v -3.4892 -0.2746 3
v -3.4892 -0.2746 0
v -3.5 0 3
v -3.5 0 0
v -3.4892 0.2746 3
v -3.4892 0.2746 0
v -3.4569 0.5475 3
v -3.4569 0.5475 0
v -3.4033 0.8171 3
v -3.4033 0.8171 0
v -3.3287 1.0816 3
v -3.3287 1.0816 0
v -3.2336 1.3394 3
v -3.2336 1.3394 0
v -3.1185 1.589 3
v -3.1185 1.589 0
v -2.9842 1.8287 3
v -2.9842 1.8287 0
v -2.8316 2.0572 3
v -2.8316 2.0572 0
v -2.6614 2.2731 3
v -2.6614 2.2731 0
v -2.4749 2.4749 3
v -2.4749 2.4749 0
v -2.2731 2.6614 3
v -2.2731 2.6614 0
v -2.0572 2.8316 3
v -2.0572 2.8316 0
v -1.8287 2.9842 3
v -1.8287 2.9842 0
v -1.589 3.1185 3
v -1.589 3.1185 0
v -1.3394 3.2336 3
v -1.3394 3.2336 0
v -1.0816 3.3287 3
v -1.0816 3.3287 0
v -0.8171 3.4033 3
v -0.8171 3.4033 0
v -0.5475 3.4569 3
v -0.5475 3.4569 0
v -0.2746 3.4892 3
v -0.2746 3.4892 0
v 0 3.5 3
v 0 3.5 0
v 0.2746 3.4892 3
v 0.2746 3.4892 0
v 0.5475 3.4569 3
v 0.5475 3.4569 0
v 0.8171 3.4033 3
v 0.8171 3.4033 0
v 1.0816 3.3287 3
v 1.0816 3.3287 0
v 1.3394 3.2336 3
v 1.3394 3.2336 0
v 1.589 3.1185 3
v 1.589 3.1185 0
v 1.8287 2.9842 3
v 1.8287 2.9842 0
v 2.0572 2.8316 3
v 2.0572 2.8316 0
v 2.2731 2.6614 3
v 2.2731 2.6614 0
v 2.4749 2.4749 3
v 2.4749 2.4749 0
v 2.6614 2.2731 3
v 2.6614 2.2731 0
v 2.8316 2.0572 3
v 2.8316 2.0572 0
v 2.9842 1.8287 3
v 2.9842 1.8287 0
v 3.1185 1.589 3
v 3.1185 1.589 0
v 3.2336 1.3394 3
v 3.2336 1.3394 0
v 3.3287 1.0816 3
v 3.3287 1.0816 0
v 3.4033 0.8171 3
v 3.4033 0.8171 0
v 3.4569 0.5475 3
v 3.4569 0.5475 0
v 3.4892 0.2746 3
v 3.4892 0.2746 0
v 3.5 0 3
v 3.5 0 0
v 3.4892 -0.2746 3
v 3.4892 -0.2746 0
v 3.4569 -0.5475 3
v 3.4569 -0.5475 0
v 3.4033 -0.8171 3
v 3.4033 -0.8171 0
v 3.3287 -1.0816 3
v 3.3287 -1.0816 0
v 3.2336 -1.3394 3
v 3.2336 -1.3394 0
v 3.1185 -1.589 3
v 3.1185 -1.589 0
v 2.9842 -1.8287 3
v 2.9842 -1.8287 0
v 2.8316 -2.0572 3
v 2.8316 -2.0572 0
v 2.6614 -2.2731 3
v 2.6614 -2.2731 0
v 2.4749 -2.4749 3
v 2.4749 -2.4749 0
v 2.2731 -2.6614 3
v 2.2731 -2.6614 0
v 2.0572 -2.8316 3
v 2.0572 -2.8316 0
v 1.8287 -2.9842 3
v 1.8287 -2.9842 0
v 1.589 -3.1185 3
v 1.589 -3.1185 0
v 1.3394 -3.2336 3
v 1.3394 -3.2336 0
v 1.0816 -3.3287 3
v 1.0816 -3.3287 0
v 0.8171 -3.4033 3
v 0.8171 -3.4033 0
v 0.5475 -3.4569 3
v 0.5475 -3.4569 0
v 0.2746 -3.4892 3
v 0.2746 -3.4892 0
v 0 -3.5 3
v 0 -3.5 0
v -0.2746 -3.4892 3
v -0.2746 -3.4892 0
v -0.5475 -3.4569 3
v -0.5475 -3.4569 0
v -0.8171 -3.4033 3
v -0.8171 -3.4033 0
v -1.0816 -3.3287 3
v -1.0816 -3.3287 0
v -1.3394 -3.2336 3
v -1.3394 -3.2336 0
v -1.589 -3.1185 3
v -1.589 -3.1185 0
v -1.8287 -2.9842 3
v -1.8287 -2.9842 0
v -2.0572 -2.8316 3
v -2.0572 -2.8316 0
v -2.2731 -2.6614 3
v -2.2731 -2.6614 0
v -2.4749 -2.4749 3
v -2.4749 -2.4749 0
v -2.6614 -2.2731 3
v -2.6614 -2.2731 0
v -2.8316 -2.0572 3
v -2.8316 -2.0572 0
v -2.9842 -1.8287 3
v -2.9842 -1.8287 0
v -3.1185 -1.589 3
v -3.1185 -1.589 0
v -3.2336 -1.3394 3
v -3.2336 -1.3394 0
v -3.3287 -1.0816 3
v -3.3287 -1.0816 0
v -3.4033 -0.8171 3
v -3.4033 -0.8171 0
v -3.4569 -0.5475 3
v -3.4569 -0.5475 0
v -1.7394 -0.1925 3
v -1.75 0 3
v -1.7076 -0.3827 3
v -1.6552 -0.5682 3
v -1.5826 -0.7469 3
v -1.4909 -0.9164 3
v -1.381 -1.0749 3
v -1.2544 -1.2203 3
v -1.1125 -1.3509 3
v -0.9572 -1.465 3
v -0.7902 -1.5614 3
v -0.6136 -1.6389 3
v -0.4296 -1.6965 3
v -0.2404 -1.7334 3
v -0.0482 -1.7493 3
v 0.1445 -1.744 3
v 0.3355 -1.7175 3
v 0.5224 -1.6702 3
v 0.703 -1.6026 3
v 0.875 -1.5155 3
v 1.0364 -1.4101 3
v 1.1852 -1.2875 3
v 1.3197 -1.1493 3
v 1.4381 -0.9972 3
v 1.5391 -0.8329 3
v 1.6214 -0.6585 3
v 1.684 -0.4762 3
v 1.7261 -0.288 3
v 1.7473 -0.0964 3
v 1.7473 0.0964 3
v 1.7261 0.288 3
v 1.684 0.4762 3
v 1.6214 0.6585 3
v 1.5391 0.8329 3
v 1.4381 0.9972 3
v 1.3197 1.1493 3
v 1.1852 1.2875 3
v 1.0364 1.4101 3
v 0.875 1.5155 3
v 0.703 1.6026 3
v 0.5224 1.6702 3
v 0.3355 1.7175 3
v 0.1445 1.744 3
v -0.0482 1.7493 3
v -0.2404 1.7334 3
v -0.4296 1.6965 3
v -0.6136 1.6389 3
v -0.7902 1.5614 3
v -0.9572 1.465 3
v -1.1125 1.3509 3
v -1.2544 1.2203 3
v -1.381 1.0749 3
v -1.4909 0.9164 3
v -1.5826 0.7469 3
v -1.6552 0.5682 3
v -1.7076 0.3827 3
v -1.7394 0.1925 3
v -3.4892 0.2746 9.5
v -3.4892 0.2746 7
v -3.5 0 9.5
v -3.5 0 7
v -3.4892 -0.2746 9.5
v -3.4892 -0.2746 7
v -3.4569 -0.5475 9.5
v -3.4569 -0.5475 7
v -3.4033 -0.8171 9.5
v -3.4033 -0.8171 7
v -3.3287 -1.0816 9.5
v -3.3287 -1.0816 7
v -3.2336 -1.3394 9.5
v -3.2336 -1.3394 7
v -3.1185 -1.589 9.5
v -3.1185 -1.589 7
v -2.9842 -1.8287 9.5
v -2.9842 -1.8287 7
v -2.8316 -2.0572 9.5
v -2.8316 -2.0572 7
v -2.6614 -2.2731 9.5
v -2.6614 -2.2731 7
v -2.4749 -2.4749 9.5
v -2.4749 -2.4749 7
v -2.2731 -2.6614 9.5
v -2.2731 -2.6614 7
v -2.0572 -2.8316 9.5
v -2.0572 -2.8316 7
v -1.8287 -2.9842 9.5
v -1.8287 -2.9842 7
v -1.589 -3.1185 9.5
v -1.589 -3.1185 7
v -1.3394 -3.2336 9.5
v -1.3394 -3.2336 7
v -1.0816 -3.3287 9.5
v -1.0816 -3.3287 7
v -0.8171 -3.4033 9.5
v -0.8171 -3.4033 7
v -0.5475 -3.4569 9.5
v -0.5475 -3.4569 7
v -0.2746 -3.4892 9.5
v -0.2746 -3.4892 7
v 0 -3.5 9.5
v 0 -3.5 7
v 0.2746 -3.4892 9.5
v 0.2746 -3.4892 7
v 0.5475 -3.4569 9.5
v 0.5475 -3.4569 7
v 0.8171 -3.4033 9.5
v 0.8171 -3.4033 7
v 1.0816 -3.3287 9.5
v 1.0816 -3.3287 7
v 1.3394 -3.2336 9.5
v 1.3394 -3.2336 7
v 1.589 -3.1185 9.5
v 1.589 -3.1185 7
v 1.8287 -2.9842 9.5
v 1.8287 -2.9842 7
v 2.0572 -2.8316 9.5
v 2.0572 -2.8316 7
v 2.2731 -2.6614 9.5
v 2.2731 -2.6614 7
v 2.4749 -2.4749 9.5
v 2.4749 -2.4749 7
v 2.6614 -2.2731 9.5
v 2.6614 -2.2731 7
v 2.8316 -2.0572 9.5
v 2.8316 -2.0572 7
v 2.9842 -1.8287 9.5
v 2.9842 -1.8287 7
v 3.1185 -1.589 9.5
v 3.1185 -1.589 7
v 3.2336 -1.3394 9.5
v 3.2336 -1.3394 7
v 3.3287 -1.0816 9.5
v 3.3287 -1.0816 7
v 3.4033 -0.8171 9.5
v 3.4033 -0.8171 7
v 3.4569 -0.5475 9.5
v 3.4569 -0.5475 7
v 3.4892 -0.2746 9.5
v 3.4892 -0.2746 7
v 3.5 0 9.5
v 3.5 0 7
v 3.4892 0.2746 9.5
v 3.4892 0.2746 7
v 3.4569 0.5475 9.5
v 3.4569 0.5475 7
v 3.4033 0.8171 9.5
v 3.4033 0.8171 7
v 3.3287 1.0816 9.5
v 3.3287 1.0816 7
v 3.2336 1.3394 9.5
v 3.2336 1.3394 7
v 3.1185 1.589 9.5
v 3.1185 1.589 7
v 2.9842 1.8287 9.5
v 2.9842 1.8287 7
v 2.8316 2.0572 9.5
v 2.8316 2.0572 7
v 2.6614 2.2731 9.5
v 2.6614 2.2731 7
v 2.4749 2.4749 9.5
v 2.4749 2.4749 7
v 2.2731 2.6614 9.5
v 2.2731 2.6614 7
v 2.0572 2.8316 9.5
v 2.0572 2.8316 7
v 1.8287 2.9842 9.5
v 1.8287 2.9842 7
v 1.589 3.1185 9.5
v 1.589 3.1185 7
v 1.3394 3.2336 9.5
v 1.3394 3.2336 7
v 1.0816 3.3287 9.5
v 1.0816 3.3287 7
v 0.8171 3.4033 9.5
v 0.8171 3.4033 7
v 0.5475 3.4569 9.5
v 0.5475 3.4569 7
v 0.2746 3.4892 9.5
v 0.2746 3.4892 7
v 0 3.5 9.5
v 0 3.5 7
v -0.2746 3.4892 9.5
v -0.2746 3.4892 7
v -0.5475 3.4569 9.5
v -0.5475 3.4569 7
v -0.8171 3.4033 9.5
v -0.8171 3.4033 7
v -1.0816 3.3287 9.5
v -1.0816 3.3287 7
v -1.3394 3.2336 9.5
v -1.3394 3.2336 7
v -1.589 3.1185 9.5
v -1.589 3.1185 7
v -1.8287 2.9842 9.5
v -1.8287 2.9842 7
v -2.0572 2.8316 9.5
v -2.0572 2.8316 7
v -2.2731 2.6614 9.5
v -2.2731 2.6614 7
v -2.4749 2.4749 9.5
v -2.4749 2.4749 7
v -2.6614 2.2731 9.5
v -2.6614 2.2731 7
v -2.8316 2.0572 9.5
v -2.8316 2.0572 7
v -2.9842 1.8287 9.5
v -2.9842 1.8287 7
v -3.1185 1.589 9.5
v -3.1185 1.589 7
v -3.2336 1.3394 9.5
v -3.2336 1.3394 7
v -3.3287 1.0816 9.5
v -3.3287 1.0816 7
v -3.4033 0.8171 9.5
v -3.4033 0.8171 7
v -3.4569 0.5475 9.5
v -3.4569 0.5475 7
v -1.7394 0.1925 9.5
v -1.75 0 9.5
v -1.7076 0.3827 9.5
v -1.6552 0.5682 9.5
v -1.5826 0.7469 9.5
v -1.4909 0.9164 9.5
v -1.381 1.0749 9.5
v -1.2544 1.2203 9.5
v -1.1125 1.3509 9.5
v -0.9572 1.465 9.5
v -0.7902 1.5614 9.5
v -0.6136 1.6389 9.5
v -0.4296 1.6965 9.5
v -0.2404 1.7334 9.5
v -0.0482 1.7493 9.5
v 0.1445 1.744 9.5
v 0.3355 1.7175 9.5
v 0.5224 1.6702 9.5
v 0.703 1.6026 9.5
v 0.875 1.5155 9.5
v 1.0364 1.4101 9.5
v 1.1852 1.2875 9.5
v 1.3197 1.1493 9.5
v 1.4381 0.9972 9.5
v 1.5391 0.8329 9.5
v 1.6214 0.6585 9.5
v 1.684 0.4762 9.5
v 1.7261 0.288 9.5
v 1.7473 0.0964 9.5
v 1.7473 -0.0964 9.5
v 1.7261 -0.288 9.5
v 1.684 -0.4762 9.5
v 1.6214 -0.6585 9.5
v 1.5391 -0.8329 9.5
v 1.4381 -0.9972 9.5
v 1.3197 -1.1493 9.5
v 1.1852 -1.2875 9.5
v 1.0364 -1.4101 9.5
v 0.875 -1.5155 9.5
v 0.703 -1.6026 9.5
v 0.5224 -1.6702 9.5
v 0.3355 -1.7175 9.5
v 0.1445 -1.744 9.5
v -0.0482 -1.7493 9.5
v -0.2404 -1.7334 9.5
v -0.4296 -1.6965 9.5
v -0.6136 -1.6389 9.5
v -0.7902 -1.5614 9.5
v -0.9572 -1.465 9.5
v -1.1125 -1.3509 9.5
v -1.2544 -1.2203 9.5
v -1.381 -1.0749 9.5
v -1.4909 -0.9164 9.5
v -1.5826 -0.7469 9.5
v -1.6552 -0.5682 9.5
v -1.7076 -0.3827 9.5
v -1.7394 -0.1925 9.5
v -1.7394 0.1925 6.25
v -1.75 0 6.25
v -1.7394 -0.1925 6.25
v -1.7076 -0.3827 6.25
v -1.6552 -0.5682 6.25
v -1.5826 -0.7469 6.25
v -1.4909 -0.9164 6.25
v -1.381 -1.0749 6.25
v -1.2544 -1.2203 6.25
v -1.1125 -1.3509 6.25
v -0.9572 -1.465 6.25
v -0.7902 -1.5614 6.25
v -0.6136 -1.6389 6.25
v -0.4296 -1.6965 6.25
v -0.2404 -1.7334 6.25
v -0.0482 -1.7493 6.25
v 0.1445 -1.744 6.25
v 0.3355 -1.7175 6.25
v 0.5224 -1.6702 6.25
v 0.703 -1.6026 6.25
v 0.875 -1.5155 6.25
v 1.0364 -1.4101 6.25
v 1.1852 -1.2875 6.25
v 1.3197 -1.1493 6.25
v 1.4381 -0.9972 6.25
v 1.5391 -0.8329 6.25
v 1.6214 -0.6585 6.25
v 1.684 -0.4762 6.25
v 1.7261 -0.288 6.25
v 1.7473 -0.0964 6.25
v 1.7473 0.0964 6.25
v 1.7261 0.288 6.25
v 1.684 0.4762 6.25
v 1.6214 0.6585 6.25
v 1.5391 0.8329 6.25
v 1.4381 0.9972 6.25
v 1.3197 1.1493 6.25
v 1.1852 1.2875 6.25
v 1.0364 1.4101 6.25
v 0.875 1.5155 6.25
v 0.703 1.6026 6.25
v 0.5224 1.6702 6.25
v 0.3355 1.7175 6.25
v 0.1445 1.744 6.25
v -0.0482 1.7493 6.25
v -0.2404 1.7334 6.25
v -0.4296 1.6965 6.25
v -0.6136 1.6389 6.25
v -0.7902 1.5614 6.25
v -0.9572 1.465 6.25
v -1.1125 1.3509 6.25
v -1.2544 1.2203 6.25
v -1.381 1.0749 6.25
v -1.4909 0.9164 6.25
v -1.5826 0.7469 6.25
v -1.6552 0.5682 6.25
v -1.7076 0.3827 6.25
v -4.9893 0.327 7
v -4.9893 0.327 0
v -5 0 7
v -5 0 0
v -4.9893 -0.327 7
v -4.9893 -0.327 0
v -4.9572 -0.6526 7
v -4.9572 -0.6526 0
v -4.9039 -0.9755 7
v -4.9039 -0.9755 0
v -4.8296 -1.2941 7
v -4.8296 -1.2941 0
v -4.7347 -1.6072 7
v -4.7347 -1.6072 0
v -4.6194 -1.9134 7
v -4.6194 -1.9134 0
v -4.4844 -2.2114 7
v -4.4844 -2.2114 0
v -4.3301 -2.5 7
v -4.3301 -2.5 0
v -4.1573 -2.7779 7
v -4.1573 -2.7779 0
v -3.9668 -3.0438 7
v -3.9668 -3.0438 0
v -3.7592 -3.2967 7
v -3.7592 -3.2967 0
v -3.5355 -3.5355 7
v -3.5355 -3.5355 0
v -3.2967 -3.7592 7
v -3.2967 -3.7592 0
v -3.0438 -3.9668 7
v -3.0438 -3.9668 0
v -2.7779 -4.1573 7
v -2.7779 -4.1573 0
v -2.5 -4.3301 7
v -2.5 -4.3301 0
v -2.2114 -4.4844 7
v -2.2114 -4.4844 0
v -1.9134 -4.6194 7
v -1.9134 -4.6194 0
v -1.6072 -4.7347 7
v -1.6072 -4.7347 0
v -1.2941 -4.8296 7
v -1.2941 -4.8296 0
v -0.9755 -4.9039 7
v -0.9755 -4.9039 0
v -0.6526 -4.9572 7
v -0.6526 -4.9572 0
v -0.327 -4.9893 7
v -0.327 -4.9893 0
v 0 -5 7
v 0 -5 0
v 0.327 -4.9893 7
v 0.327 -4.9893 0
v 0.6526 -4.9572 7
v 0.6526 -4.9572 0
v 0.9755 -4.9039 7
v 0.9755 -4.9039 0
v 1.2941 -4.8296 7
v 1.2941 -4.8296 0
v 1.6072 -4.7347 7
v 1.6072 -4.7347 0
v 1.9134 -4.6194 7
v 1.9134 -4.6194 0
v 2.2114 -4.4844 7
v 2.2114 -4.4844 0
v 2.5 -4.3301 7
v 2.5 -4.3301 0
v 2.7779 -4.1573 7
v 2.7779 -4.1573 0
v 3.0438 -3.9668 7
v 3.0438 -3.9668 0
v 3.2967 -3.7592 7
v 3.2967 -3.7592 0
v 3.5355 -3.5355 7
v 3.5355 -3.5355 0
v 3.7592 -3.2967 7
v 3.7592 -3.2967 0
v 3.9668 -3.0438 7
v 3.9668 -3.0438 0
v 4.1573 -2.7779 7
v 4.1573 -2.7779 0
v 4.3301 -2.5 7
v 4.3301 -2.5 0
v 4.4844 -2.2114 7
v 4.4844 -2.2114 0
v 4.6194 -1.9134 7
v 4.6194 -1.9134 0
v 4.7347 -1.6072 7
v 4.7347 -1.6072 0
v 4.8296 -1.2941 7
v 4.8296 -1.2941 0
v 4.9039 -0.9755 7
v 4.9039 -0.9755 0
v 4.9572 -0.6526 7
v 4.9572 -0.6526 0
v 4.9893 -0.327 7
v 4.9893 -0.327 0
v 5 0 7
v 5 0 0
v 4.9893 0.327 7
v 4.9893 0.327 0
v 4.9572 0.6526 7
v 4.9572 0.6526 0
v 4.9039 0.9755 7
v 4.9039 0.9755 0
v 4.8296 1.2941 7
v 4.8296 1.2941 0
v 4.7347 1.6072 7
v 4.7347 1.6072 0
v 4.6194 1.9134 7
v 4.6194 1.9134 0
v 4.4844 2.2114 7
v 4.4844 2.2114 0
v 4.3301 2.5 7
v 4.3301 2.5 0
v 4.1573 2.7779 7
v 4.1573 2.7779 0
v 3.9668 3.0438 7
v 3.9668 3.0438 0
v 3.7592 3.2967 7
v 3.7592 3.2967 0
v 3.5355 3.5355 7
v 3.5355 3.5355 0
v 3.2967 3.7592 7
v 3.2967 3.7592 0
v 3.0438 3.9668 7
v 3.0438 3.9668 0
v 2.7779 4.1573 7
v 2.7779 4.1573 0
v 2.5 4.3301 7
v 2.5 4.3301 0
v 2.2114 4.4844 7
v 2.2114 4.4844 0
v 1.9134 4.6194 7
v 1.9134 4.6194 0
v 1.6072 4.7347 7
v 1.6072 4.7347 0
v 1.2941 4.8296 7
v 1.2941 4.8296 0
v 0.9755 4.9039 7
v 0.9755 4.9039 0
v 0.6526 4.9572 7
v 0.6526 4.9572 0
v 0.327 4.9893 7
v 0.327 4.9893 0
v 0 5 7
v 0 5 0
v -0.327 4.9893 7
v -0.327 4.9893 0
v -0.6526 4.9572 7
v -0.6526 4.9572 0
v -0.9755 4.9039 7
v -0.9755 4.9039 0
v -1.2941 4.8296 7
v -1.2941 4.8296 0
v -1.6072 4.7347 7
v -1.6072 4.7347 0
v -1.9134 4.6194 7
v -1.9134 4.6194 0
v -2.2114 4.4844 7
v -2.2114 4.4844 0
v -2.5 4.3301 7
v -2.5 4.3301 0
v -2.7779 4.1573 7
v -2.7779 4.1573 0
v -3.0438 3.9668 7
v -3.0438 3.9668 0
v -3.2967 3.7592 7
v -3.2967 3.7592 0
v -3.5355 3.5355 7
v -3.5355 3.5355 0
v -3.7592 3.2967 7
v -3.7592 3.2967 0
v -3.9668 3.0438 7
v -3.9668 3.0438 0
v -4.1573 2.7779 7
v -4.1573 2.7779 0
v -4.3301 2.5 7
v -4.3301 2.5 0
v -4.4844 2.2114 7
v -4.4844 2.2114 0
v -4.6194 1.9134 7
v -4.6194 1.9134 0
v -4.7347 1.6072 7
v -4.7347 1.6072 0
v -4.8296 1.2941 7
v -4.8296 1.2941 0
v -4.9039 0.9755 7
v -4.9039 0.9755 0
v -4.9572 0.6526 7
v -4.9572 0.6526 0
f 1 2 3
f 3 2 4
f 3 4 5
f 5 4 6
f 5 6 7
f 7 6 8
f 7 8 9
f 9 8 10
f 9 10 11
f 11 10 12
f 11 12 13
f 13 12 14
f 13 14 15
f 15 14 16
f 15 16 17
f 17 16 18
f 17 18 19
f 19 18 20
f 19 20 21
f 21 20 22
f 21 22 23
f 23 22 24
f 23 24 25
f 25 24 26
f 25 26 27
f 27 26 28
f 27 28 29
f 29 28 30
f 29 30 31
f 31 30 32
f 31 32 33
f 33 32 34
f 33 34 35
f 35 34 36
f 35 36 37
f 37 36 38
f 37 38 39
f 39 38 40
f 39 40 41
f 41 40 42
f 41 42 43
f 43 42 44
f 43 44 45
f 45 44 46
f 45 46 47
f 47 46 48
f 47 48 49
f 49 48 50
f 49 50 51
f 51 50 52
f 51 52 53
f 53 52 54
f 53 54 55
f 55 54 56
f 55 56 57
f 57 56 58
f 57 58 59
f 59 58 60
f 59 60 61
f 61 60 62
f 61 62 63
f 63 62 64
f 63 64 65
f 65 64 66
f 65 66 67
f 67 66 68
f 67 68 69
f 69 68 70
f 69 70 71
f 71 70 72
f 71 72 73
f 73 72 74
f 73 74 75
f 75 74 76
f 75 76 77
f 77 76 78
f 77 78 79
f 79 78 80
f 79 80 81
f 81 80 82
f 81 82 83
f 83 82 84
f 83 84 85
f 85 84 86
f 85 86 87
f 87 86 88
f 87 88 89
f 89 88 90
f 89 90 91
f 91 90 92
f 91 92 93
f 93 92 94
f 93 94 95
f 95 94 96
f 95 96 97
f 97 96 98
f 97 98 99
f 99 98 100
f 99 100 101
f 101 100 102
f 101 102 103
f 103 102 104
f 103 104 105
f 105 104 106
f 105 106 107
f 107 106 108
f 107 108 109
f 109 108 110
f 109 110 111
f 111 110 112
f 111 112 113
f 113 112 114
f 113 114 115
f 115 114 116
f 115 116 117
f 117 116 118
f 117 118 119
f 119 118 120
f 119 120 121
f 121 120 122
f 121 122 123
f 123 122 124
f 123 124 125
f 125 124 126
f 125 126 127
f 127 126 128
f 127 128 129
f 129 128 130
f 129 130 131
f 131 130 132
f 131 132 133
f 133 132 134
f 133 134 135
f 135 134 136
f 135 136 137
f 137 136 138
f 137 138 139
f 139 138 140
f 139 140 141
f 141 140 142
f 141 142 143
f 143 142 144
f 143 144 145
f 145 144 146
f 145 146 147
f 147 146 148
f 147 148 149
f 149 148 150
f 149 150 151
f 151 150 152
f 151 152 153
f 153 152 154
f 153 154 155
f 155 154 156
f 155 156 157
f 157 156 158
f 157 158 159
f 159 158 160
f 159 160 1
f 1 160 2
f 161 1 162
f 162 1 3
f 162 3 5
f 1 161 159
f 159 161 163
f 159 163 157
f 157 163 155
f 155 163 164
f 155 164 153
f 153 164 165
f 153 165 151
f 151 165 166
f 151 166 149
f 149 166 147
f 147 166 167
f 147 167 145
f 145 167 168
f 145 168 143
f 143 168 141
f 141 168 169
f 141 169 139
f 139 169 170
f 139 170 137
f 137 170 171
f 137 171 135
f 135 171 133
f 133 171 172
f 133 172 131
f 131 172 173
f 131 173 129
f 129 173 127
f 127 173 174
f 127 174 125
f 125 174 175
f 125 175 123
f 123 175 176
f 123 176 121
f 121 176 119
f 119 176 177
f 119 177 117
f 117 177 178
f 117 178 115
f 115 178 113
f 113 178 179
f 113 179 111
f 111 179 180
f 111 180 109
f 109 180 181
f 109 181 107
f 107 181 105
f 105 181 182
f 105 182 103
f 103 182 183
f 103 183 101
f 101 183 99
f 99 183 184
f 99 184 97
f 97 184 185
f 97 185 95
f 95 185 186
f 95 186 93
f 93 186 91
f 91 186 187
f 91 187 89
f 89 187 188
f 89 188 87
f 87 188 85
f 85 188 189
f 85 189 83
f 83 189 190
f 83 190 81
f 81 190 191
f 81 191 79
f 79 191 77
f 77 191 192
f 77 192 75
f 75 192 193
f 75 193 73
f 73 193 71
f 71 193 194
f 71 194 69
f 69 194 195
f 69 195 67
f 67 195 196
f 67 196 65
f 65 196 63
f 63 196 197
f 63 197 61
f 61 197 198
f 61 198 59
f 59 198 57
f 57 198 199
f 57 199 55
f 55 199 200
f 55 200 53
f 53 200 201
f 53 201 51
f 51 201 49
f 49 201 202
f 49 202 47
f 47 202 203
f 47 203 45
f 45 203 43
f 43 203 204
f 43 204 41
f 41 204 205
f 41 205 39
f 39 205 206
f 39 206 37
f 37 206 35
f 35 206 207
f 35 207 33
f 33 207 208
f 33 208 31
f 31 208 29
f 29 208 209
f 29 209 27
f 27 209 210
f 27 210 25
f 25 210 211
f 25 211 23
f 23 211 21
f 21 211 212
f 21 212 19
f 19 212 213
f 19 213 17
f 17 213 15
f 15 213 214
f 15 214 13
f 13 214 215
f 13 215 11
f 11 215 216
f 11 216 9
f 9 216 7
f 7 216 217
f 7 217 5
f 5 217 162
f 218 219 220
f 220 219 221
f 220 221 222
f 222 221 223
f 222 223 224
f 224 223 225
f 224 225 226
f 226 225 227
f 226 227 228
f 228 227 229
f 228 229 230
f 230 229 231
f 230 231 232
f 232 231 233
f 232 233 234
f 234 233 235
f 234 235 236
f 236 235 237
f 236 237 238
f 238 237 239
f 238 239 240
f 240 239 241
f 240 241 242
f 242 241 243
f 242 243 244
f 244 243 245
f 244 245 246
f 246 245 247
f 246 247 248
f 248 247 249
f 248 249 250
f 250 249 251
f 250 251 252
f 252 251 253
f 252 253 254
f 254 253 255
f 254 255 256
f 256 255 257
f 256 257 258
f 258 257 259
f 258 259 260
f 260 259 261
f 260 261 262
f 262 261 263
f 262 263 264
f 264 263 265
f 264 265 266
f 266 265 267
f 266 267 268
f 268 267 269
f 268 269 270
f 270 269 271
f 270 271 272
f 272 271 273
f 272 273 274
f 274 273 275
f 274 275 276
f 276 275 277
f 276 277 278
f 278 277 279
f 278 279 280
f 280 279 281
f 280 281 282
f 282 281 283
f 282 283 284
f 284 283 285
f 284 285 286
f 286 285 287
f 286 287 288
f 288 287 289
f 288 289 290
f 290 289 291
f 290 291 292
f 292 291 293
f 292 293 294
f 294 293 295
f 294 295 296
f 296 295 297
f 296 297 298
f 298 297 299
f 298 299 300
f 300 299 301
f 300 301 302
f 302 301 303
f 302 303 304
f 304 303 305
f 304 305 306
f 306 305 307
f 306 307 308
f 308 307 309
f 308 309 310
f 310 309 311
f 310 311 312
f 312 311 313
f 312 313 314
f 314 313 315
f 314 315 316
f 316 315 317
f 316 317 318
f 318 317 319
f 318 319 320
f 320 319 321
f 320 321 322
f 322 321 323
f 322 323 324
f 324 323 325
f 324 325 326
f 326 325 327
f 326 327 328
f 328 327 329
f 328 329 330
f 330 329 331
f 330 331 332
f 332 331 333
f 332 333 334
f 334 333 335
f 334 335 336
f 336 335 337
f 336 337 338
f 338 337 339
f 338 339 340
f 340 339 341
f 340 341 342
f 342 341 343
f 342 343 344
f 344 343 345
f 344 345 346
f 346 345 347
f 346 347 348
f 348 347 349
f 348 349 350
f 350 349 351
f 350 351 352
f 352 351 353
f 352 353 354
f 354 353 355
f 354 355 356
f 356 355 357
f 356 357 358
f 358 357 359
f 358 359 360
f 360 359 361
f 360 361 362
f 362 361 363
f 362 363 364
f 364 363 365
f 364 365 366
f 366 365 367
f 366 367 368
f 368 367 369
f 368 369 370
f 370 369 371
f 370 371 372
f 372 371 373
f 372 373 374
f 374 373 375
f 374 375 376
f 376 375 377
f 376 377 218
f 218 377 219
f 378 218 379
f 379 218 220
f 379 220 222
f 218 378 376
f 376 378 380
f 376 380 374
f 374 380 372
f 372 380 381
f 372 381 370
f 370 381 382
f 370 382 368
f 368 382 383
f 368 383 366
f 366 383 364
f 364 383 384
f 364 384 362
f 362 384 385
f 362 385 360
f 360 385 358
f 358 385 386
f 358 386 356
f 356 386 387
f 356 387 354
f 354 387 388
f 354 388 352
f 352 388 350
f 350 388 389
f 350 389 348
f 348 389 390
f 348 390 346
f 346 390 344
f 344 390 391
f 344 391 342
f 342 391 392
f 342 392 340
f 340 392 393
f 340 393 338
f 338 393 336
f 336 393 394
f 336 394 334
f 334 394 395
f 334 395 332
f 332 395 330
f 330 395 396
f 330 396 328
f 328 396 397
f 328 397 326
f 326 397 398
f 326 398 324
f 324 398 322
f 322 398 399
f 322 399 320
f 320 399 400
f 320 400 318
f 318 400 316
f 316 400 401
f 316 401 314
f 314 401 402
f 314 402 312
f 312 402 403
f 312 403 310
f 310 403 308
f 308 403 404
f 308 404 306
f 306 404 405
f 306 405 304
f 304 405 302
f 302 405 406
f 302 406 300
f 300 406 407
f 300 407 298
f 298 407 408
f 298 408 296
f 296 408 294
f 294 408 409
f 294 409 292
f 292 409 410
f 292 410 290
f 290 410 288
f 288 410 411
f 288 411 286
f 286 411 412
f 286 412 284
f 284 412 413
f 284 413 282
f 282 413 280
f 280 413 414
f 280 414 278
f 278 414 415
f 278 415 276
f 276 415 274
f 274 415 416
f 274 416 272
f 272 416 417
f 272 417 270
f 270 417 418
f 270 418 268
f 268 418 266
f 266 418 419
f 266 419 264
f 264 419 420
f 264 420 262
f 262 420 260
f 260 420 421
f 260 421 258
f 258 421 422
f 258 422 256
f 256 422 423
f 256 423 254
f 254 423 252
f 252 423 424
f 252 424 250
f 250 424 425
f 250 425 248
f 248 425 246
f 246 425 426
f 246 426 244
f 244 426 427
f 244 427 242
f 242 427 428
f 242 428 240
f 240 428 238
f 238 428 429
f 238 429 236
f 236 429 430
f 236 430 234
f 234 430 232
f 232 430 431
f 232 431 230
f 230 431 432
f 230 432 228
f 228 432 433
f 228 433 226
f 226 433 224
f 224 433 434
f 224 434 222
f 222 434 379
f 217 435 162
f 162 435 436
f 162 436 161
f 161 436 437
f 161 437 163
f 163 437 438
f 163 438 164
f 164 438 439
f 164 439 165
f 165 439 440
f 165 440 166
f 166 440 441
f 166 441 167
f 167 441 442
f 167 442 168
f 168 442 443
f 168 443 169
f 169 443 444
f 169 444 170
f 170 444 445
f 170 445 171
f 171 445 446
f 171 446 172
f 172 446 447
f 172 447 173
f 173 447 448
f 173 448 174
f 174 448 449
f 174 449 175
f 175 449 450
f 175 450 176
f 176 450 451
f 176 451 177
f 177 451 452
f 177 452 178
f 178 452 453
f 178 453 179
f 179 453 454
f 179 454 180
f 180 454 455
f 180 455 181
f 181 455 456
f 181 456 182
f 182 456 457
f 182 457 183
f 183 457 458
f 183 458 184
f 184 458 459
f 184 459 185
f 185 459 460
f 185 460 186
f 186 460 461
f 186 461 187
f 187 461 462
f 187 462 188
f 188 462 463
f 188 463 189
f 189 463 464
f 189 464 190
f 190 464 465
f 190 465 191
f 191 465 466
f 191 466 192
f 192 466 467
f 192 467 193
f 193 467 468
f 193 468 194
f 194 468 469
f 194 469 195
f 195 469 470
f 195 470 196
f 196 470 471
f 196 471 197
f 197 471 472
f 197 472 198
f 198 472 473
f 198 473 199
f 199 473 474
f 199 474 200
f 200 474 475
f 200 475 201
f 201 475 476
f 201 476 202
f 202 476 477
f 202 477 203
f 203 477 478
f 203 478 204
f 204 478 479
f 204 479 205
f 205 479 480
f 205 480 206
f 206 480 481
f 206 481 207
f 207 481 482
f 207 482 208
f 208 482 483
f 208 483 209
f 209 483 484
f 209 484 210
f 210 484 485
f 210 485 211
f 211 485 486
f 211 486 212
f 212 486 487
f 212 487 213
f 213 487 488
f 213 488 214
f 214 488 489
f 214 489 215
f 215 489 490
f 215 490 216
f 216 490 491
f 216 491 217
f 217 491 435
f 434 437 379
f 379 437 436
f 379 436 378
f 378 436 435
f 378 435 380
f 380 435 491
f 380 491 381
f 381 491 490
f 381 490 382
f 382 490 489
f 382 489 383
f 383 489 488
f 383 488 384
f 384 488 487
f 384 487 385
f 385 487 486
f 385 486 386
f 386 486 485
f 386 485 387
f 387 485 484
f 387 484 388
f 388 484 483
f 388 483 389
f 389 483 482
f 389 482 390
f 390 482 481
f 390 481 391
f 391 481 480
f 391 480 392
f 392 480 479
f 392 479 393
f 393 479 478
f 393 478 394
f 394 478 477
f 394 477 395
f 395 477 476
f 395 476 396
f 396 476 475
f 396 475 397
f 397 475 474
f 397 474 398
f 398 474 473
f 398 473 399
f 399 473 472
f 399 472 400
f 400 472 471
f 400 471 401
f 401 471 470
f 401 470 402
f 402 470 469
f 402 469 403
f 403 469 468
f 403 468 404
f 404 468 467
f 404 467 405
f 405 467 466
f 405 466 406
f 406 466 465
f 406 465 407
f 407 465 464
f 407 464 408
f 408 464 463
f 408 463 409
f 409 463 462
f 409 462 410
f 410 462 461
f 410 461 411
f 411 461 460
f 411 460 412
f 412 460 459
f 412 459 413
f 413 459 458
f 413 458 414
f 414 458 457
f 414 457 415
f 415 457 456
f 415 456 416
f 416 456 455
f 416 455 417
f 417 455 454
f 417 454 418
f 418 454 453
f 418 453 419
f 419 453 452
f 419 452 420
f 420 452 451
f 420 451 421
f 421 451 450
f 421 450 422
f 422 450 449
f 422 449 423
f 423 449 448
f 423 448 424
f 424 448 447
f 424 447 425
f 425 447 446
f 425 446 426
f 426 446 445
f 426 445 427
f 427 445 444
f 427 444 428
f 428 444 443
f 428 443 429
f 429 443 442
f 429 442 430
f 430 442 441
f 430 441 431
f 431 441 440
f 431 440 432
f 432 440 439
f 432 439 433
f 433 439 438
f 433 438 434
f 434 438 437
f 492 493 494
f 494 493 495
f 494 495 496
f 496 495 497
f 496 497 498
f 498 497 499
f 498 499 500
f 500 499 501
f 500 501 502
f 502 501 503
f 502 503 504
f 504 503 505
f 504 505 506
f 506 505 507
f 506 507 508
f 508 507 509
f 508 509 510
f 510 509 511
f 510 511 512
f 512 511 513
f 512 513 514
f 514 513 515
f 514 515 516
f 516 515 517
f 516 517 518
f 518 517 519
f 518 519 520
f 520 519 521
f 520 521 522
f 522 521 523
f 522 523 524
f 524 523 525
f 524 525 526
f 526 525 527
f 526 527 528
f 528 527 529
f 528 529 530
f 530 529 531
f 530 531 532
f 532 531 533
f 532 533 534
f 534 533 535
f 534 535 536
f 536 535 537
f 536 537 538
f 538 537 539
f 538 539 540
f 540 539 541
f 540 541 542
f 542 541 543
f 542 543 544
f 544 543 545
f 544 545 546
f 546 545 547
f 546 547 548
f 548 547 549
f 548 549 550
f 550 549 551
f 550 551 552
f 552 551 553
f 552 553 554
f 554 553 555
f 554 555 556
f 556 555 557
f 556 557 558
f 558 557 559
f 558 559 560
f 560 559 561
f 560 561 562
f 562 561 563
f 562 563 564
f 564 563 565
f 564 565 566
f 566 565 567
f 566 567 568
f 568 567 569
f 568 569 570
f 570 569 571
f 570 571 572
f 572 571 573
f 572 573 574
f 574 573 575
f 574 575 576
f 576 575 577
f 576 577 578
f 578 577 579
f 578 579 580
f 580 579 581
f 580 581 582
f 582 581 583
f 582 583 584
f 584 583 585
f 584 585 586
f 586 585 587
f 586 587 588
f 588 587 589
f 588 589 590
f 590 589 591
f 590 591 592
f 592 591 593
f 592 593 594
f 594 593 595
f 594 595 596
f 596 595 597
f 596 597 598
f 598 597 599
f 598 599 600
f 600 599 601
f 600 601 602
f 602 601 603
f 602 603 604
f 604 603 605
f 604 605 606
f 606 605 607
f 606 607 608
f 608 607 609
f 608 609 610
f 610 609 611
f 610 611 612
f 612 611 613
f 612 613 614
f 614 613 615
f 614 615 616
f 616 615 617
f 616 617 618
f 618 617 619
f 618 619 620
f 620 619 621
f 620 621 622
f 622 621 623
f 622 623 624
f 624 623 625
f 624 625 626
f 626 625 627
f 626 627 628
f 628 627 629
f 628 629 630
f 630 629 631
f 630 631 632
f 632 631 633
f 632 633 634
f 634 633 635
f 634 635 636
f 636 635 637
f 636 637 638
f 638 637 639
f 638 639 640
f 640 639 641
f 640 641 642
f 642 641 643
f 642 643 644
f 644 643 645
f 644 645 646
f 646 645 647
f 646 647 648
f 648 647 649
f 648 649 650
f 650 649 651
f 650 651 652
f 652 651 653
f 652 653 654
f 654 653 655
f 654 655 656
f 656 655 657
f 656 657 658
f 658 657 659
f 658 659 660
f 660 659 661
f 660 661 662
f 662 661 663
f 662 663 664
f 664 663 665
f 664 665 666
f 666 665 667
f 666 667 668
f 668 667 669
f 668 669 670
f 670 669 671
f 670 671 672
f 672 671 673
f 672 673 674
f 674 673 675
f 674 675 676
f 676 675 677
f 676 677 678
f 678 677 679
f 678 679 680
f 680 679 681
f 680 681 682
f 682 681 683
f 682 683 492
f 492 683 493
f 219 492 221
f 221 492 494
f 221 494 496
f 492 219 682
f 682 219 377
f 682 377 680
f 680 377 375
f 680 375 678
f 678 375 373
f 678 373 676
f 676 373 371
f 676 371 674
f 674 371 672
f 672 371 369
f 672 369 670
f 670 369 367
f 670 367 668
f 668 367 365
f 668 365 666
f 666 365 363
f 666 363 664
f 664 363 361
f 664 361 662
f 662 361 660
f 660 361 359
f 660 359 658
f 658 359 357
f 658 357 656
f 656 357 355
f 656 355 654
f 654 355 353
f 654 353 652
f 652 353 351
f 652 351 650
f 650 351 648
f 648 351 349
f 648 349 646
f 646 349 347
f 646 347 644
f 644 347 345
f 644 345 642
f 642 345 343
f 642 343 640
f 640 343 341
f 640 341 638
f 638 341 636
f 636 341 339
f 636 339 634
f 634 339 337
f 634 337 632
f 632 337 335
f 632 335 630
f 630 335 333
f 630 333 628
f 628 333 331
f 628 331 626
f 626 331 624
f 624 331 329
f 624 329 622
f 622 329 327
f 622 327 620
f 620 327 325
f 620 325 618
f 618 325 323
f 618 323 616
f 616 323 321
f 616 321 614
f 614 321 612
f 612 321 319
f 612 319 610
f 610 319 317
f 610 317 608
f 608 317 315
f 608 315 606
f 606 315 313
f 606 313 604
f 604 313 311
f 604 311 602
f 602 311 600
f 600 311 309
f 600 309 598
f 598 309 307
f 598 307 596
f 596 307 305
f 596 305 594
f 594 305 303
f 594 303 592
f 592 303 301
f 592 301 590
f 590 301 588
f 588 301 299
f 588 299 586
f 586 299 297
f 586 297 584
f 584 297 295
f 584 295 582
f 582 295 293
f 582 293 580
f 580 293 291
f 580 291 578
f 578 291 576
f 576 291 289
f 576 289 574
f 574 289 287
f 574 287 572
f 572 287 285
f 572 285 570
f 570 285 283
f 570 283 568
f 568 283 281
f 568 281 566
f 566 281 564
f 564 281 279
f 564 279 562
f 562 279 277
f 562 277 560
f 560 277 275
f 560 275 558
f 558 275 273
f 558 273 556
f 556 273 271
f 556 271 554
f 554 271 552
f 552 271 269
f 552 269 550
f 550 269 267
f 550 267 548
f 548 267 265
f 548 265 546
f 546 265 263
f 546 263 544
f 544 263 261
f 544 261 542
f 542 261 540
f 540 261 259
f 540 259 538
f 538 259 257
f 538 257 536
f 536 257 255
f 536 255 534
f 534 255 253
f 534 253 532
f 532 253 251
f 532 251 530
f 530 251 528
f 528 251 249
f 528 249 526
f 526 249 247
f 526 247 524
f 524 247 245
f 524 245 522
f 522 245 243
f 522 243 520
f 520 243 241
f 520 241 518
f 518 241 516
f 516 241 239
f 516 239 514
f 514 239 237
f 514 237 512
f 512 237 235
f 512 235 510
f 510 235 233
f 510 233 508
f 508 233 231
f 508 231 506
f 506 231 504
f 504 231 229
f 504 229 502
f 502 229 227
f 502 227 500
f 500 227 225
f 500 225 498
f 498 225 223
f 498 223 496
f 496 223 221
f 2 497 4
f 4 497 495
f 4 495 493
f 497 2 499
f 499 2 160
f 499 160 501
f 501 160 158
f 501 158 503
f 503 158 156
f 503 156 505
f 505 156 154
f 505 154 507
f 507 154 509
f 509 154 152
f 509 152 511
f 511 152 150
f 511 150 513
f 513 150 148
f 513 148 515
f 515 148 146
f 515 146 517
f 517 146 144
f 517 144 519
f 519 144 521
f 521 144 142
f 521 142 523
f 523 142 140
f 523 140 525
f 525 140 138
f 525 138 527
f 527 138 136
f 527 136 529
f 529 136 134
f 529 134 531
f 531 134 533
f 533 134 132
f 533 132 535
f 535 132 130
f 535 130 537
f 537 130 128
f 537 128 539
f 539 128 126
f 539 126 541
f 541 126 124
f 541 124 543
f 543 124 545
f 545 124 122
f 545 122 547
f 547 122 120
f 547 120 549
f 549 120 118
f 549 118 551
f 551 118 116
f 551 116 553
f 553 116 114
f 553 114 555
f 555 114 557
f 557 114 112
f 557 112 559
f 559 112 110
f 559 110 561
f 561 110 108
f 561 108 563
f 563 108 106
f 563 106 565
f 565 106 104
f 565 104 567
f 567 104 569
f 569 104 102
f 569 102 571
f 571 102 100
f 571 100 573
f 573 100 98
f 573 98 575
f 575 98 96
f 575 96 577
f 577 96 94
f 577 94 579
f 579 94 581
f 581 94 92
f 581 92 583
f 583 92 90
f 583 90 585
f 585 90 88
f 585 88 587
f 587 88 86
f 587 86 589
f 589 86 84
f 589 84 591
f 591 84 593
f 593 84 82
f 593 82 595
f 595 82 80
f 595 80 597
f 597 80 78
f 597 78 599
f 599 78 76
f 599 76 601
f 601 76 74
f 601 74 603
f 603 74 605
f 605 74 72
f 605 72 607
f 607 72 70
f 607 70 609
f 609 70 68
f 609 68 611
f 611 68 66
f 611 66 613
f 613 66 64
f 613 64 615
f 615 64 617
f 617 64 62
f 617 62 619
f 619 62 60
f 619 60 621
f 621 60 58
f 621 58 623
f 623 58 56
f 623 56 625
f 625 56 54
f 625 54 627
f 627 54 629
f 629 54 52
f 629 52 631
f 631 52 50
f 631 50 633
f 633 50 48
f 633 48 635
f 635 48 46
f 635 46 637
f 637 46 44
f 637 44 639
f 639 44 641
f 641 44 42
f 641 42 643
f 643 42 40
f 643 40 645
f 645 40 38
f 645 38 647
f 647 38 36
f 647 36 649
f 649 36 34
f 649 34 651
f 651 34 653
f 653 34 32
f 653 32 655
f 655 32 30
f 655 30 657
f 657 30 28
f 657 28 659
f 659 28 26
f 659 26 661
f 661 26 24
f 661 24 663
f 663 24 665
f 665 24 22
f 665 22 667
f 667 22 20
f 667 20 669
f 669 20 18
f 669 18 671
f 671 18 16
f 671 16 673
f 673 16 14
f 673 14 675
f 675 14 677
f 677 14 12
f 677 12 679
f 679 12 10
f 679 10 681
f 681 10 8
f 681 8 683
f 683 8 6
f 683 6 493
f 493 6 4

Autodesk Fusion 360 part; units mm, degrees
sketch "Skizze1" plane through (0, 0, 0) normal (0, 0, 1) x (1, 0, 0)
  line L0 (-31.5508, 0) -> (33.8224, 0) construction
  line L1 (0, 25.6192) -> (0, -38.4919) construction
  circle A0 centre (0, 0) radius 1.75
  circle A1 centre (0, 0) radius 3.5
  circle A2 centre (0, 0) radius 5
  dimension "d1" = 3.5
  dimension "d2" = 7
  dimension "d3" = 10
extrude "Extrusion1" add sketch "Skizze1" along normal blind 7 contours A1 | A2
extrude "Extrusion2" add sketch "Skizze1" along normal blind 9.5 contours A1
extrude "Extrusion3" cut sketch "Skizze1" along normal blind 3 contours A1
